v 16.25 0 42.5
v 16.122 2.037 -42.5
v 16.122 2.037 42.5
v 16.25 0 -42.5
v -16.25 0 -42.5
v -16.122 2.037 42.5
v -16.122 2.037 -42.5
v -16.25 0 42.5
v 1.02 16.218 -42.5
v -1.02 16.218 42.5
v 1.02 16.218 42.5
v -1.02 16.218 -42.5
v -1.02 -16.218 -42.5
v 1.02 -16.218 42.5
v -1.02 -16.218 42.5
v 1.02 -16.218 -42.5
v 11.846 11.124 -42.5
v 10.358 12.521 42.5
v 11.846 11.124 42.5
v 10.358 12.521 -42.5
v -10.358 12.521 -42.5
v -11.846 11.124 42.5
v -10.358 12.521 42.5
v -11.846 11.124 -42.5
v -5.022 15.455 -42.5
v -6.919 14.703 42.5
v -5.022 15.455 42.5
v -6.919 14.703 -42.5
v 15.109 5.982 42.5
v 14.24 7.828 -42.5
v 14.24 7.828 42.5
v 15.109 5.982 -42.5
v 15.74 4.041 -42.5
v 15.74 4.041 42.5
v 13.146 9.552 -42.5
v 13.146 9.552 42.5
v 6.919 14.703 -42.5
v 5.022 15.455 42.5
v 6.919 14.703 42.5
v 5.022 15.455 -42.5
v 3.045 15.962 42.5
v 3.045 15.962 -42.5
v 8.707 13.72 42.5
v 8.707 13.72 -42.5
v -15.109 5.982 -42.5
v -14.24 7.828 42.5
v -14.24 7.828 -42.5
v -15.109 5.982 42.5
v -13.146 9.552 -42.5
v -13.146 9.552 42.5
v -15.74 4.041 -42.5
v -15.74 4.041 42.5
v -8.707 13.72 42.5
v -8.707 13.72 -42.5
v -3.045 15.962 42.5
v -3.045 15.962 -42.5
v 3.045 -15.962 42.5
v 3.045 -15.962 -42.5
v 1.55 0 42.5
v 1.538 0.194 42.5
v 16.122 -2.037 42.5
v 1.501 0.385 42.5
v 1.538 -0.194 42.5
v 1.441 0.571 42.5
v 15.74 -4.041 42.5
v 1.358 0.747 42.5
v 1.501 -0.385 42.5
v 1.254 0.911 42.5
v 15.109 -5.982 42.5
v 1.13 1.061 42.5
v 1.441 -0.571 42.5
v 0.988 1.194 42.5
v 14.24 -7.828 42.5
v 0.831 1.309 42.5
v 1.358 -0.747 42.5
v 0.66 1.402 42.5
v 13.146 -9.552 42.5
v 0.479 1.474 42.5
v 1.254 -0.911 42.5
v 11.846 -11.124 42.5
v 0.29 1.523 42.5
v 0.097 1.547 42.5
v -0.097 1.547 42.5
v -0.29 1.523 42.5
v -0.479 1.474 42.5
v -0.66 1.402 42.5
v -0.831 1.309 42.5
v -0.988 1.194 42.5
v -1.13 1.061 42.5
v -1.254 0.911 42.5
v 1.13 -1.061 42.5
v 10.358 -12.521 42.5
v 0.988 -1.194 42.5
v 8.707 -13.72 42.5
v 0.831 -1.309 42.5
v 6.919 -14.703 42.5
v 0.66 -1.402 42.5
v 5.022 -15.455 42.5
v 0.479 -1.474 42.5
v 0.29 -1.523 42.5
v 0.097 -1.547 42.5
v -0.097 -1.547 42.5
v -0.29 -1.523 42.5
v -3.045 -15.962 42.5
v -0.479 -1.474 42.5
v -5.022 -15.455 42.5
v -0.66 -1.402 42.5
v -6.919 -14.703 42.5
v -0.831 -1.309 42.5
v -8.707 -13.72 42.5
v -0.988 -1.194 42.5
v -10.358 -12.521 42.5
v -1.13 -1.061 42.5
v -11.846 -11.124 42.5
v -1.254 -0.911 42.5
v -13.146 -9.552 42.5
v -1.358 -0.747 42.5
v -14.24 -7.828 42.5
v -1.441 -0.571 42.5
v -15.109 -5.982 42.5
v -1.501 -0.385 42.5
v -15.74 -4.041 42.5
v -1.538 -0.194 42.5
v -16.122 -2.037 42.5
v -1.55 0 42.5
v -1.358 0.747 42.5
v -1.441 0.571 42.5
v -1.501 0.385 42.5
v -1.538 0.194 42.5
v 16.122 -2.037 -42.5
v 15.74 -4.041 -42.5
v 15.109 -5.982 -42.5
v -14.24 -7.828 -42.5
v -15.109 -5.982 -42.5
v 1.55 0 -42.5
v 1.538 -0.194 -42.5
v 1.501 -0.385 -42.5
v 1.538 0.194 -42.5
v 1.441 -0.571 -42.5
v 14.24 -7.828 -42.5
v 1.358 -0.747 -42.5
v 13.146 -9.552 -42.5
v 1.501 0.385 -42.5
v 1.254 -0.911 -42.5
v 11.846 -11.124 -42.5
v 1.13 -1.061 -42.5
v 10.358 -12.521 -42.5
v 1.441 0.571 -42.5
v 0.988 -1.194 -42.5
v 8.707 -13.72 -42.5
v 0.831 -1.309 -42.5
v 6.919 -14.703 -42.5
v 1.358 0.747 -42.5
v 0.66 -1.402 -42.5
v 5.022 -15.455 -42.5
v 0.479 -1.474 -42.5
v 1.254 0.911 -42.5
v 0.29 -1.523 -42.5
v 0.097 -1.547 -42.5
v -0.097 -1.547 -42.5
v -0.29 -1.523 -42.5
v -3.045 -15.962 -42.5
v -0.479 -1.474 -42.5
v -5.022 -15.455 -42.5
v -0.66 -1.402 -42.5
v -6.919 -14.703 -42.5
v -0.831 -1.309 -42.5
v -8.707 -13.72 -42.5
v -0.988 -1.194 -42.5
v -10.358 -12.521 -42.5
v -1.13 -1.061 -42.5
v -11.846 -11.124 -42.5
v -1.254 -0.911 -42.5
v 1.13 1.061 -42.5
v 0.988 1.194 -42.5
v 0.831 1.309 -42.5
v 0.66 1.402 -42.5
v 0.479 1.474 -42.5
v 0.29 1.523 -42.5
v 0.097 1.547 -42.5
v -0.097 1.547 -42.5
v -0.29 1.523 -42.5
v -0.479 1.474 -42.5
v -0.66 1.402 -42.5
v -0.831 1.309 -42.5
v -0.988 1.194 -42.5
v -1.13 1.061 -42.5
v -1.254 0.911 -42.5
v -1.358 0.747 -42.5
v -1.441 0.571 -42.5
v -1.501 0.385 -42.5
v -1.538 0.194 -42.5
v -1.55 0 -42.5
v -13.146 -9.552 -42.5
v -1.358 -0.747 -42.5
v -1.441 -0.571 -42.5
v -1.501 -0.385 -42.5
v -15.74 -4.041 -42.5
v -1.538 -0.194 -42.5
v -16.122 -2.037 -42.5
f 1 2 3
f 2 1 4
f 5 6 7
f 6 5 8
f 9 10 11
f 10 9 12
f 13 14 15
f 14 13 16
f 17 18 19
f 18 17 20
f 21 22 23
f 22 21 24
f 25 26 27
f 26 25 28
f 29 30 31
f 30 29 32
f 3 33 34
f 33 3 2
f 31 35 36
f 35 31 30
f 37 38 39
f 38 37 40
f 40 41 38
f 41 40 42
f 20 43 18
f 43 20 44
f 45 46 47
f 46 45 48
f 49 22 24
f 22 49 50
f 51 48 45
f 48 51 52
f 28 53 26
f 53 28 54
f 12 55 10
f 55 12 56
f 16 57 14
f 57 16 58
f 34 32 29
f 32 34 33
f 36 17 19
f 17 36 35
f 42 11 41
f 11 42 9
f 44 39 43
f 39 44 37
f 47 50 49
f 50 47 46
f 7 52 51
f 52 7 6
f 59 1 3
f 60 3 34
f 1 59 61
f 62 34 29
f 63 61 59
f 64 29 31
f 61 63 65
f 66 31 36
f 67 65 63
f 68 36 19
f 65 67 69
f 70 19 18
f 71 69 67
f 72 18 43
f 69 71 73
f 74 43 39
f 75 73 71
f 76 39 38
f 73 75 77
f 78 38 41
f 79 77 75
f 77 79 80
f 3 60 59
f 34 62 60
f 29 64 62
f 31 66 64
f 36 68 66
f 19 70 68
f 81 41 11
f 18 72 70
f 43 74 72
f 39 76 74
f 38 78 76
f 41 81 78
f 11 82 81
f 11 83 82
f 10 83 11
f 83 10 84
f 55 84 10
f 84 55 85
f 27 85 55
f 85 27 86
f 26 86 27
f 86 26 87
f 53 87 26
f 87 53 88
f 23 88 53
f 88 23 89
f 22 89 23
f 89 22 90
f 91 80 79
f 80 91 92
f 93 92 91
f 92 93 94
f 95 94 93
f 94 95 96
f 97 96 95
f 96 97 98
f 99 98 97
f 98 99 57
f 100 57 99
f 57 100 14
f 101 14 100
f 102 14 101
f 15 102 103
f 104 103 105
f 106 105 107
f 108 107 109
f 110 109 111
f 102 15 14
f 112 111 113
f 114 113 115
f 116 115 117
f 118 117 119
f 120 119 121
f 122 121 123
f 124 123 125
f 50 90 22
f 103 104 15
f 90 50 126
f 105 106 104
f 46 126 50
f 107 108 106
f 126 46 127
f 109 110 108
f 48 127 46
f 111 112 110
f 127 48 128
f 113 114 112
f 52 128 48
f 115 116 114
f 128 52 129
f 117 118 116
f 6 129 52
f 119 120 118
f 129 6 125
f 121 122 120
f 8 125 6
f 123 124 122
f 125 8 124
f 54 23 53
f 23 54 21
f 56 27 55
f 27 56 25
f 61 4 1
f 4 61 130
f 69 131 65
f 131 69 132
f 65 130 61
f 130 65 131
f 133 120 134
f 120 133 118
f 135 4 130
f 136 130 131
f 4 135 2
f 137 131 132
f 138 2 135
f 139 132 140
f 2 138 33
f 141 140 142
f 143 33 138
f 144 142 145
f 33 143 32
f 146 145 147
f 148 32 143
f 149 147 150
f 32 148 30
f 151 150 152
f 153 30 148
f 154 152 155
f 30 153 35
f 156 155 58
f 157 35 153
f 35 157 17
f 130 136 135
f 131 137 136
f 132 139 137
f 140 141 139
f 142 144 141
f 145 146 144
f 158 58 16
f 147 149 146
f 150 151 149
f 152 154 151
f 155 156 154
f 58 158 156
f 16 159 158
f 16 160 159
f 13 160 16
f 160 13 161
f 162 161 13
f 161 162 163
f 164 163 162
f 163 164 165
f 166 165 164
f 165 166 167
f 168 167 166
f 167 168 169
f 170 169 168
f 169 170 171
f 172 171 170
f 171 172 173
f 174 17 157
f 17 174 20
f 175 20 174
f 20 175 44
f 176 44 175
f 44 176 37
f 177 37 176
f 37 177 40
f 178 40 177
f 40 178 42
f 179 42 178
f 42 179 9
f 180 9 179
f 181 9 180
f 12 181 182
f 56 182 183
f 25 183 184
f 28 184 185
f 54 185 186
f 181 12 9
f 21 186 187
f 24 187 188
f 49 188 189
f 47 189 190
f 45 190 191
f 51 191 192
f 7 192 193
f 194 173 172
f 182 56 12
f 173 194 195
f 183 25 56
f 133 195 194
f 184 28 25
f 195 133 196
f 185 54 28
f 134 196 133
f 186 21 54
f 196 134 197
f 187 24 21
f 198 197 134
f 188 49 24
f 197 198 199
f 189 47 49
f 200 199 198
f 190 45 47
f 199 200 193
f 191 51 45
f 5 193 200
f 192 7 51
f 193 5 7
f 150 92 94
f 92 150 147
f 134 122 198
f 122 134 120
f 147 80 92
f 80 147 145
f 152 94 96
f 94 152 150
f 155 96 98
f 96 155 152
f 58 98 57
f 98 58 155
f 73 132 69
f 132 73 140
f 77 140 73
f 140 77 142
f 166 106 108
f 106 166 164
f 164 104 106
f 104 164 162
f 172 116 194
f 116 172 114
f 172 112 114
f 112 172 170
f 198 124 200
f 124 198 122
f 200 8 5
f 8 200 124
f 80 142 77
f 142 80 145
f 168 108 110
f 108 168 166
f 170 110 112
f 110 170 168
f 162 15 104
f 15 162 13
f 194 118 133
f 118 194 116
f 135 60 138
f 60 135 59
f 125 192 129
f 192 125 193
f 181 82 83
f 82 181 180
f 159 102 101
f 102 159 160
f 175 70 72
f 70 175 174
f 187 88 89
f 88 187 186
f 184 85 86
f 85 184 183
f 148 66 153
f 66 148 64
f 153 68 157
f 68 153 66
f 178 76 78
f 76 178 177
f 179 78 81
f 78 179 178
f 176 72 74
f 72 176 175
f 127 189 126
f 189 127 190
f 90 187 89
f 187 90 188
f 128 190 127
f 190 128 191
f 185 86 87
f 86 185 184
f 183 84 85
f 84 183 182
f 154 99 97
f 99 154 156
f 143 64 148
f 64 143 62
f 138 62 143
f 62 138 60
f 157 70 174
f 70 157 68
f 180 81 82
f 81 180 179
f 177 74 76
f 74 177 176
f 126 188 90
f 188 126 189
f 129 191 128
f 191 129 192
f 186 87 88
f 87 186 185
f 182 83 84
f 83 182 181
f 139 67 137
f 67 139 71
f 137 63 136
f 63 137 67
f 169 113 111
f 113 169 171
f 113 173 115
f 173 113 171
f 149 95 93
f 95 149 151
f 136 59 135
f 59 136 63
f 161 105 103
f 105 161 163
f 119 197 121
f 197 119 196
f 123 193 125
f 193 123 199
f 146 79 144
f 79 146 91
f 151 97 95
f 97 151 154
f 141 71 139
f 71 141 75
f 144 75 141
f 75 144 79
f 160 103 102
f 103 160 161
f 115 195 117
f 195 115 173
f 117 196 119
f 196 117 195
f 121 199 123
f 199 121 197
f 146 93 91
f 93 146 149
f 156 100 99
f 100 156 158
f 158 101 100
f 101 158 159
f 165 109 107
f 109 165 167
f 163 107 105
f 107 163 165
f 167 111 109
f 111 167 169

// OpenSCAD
$fn = 50;


difference() {
	union() {
		translate(v = [0, 0, -42.5000000000]) {
			cylinder(h = 85, r = 16.2500000000);
		}
	}
	union() {
		translate(v = [0, 0, -100.0000000000]) {
			cylinder(h = 200, r = 1.5500000000);
		}
	}
}
